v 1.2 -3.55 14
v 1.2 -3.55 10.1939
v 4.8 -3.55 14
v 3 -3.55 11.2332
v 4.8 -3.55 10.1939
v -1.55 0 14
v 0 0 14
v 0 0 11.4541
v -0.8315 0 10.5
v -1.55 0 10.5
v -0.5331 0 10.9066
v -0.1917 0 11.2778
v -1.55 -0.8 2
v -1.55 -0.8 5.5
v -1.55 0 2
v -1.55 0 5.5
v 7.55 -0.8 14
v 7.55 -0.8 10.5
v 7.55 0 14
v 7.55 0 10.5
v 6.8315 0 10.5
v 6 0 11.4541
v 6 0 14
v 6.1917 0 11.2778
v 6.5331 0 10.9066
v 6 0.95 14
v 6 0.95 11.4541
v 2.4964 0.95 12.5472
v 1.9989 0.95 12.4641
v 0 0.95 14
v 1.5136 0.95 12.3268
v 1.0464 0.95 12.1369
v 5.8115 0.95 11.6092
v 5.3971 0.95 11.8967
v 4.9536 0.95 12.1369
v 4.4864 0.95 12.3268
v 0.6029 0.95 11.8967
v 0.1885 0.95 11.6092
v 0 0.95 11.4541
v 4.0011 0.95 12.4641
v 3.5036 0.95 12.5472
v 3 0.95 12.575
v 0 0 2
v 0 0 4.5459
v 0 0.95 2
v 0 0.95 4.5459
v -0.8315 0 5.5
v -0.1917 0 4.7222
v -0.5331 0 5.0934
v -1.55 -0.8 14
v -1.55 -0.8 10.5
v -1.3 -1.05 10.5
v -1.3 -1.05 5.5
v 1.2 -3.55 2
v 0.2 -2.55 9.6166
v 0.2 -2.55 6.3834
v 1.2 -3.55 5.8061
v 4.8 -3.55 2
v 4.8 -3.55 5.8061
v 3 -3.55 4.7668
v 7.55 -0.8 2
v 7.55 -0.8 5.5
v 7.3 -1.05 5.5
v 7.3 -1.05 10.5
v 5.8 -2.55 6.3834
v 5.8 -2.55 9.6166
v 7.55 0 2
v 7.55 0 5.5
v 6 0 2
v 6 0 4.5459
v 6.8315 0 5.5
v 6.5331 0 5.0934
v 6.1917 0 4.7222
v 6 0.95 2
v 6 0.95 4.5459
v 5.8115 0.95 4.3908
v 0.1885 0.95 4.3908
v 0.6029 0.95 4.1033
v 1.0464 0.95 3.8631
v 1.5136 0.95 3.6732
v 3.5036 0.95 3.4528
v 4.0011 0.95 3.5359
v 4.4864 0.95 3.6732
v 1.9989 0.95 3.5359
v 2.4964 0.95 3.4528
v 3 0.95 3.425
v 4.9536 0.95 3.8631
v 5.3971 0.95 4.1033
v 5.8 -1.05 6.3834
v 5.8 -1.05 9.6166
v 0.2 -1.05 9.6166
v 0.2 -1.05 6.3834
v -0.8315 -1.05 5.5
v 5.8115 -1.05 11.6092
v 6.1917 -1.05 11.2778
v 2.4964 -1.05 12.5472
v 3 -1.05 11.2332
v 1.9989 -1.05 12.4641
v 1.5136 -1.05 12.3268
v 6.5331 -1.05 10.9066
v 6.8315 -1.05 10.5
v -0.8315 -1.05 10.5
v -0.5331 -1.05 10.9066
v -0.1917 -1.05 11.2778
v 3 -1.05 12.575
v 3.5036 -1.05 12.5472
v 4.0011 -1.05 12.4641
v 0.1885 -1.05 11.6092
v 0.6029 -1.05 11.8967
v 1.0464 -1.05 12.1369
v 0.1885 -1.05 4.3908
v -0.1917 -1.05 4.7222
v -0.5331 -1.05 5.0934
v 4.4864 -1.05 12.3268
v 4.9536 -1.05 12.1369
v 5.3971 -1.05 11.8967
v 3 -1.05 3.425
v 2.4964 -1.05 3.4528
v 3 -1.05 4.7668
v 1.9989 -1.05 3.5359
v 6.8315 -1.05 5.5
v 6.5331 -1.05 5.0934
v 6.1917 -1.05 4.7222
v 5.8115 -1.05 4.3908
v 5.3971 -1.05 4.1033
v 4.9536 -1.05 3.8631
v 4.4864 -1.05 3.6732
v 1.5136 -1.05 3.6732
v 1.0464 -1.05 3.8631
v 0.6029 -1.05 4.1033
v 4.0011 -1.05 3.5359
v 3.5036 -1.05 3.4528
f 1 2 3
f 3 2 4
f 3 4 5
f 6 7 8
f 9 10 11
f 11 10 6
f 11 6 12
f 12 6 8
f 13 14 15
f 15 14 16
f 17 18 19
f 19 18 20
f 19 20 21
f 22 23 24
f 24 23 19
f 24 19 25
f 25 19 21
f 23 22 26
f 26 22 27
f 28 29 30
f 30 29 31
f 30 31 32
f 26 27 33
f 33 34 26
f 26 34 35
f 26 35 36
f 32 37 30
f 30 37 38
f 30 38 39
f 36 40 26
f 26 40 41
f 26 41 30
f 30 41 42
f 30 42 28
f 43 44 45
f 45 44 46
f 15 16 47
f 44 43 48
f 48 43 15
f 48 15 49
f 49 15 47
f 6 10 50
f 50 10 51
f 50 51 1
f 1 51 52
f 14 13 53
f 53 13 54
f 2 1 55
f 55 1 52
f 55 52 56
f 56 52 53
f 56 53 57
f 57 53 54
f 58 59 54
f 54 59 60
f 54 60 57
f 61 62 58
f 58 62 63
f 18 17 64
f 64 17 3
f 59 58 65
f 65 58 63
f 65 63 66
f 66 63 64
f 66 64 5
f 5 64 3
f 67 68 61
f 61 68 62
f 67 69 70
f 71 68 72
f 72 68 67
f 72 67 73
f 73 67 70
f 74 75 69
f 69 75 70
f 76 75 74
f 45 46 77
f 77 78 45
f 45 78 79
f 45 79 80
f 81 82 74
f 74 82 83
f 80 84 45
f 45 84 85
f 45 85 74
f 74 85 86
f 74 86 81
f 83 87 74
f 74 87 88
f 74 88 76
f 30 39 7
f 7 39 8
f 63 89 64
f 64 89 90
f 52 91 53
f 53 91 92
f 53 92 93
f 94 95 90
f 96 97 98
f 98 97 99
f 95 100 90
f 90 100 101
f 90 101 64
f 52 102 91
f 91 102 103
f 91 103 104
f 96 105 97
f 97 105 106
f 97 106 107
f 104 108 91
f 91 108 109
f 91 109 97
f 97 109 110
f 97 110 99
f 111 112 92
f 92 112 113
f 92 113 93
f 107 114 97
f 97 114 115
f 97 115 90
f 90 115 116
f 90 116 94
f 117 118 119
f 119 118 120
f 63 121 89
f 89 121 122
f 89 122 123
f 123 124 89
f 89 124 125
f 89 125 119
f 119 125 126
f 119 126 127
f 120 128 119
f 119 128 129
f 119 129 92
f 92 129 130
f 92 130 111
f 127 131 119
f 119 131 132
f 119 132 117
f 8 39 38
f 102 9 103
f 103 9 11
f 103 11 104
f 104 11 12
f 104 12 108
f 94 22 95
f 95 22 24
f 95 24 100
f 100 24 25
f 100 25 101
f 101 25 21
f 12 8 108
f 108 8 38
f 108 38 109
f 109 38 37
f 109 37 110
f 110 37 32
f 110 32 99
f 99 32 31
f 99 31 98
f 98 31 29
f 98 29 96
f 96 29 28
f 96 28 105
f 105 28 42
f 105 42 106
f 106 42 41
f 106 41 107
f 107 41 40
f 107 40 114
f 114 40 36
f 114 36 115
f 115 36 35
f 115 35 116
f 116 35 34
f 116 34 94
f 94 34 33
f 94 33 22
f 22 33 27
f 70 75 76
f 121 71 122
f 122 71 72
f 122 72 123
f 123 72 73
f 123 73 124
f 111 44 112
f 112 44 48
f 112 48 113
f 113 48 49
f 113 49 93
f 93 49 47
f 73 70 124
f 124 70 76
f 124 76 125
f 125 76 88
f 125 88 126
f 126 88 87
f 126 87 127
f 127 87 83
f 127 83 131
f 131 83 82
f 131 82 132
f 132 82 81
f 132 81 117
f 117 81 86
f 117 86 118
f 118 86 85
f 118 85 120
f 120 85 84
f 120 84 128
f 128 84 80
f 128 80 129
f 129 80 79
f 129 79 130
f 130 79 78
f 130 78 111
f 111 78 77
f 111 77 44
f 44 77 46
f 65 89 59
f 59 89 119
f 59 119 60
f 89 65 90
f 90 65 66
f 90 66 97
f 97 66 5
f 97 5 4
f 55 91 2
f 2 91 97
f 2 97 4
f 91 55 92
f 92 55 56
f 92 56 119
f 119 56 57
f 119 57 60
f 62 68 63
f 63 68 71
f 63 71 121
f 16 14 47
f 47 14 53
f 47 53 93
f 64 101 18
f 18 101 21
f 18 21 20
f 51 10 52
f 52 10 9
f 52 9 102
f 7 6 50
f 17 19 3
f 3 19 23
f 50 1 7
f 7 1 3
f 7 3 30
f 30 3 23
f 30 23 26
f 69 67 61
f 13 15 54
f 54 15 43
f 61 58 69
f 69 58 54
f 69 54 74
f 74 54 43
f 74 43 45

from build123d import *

# Parameters (mm, degrees)
BOSS_EXTRUDE1_DEPTH = 16
SKETCH2_R           = 4.575
CUT_EXTRUDE1_DEPTH  = 2
CUT_EXTRUDE2_DEPTH  = 18.867638344
CUT_EXTRUDE3_START  = -1.05
SKETCH4_W           = 9.1
SKETCH4_H           = 5
CUT_EXTRUDE3_DEPTH  = 1.05
SKETCH5_W           = 9.1
SKETCH5_H           = 2
CUT_EXTRUDE4_DEPTH  = 19.255204737


with BuildPart() as part:
    # Sketch1 → Boss-Extrude1 (new body)
    with BuildSketch(Plane.XY):
        Polygon((0, 0), (0, 0.95), (6, 0.95), (6, 0), (7.55, 0), (7.55, -0.8), (4.8, -3.55), (1.2, -3.55), (-1.55, -0.8), (-1.55, 0), align=None)
    extrude(amount=BOSS_EXTRUDE1_DEPTH)

    # Sketch2 → Cut-Extrude1 (cut)
    with BuildSketch(Plane(origin=(0, 0.95, 0), x_dir=(1, 0, 0), z_dir=(0, 1, 0))):
        with Locations((3, -8)):
            Circle(SKETCH2_R)
    extrude(amount=-CUT_EXTRUDE1_DEPTH, mode=Mode.SUBTRACT)

    # Sketch3 → Cut-Extrude2 (cut, through all)
    with BuildSketch(Plane(origin=(0, -1.05, 0), x_dir=(1, 0, 0), z_dir=(0, 1, 0))):
        Polygon((3, -4.766838493), (0.2, -6.383419246), (0.2, -9.616580754), (3, -11.233161507), (5.8, -9.616580754), (5.8, -6.383419246), align=None)
    extrude(amount=-CUT_EXTRUDE2_DEPTH, mode=Mode.SUBTRACT)

    # Sketch4 → Cut-Extrude3 (cut)
    with BuildSketch(Plane(origin=(0, 0, 0), x_dir=(1, 0, 0), z_dir=(0, 1, 0)).offset(CUT_EXTRUDE3_START)):
        with Locations((3, -8)):
            Rectangle(SKETCH4_W, SKETCH4_H)
    extrude(amount=CUT_EXTRUDE3_DEPTH, mode=Mode.SUBTRACT)

    # Sketch5 → Cut-Extrude4 (cut, through all)
    with BuildSketch(Plane(origin=(0, 0.95, 0), x_dir=(1, 0, 0), z_dir=(0, 1, 0))):
        with Locations((3, -1)):
            Rectangle(SKETCH5_W, SKETCH5_H)
        with Locations((3, -15)):
            Rectangle(SKETCH5_W, SKETCH5_H)
    extrude(amount=-CUT_EXTRUDE4_DEPTH, mode=Mode.SUBTRACT)


solid = part.part
